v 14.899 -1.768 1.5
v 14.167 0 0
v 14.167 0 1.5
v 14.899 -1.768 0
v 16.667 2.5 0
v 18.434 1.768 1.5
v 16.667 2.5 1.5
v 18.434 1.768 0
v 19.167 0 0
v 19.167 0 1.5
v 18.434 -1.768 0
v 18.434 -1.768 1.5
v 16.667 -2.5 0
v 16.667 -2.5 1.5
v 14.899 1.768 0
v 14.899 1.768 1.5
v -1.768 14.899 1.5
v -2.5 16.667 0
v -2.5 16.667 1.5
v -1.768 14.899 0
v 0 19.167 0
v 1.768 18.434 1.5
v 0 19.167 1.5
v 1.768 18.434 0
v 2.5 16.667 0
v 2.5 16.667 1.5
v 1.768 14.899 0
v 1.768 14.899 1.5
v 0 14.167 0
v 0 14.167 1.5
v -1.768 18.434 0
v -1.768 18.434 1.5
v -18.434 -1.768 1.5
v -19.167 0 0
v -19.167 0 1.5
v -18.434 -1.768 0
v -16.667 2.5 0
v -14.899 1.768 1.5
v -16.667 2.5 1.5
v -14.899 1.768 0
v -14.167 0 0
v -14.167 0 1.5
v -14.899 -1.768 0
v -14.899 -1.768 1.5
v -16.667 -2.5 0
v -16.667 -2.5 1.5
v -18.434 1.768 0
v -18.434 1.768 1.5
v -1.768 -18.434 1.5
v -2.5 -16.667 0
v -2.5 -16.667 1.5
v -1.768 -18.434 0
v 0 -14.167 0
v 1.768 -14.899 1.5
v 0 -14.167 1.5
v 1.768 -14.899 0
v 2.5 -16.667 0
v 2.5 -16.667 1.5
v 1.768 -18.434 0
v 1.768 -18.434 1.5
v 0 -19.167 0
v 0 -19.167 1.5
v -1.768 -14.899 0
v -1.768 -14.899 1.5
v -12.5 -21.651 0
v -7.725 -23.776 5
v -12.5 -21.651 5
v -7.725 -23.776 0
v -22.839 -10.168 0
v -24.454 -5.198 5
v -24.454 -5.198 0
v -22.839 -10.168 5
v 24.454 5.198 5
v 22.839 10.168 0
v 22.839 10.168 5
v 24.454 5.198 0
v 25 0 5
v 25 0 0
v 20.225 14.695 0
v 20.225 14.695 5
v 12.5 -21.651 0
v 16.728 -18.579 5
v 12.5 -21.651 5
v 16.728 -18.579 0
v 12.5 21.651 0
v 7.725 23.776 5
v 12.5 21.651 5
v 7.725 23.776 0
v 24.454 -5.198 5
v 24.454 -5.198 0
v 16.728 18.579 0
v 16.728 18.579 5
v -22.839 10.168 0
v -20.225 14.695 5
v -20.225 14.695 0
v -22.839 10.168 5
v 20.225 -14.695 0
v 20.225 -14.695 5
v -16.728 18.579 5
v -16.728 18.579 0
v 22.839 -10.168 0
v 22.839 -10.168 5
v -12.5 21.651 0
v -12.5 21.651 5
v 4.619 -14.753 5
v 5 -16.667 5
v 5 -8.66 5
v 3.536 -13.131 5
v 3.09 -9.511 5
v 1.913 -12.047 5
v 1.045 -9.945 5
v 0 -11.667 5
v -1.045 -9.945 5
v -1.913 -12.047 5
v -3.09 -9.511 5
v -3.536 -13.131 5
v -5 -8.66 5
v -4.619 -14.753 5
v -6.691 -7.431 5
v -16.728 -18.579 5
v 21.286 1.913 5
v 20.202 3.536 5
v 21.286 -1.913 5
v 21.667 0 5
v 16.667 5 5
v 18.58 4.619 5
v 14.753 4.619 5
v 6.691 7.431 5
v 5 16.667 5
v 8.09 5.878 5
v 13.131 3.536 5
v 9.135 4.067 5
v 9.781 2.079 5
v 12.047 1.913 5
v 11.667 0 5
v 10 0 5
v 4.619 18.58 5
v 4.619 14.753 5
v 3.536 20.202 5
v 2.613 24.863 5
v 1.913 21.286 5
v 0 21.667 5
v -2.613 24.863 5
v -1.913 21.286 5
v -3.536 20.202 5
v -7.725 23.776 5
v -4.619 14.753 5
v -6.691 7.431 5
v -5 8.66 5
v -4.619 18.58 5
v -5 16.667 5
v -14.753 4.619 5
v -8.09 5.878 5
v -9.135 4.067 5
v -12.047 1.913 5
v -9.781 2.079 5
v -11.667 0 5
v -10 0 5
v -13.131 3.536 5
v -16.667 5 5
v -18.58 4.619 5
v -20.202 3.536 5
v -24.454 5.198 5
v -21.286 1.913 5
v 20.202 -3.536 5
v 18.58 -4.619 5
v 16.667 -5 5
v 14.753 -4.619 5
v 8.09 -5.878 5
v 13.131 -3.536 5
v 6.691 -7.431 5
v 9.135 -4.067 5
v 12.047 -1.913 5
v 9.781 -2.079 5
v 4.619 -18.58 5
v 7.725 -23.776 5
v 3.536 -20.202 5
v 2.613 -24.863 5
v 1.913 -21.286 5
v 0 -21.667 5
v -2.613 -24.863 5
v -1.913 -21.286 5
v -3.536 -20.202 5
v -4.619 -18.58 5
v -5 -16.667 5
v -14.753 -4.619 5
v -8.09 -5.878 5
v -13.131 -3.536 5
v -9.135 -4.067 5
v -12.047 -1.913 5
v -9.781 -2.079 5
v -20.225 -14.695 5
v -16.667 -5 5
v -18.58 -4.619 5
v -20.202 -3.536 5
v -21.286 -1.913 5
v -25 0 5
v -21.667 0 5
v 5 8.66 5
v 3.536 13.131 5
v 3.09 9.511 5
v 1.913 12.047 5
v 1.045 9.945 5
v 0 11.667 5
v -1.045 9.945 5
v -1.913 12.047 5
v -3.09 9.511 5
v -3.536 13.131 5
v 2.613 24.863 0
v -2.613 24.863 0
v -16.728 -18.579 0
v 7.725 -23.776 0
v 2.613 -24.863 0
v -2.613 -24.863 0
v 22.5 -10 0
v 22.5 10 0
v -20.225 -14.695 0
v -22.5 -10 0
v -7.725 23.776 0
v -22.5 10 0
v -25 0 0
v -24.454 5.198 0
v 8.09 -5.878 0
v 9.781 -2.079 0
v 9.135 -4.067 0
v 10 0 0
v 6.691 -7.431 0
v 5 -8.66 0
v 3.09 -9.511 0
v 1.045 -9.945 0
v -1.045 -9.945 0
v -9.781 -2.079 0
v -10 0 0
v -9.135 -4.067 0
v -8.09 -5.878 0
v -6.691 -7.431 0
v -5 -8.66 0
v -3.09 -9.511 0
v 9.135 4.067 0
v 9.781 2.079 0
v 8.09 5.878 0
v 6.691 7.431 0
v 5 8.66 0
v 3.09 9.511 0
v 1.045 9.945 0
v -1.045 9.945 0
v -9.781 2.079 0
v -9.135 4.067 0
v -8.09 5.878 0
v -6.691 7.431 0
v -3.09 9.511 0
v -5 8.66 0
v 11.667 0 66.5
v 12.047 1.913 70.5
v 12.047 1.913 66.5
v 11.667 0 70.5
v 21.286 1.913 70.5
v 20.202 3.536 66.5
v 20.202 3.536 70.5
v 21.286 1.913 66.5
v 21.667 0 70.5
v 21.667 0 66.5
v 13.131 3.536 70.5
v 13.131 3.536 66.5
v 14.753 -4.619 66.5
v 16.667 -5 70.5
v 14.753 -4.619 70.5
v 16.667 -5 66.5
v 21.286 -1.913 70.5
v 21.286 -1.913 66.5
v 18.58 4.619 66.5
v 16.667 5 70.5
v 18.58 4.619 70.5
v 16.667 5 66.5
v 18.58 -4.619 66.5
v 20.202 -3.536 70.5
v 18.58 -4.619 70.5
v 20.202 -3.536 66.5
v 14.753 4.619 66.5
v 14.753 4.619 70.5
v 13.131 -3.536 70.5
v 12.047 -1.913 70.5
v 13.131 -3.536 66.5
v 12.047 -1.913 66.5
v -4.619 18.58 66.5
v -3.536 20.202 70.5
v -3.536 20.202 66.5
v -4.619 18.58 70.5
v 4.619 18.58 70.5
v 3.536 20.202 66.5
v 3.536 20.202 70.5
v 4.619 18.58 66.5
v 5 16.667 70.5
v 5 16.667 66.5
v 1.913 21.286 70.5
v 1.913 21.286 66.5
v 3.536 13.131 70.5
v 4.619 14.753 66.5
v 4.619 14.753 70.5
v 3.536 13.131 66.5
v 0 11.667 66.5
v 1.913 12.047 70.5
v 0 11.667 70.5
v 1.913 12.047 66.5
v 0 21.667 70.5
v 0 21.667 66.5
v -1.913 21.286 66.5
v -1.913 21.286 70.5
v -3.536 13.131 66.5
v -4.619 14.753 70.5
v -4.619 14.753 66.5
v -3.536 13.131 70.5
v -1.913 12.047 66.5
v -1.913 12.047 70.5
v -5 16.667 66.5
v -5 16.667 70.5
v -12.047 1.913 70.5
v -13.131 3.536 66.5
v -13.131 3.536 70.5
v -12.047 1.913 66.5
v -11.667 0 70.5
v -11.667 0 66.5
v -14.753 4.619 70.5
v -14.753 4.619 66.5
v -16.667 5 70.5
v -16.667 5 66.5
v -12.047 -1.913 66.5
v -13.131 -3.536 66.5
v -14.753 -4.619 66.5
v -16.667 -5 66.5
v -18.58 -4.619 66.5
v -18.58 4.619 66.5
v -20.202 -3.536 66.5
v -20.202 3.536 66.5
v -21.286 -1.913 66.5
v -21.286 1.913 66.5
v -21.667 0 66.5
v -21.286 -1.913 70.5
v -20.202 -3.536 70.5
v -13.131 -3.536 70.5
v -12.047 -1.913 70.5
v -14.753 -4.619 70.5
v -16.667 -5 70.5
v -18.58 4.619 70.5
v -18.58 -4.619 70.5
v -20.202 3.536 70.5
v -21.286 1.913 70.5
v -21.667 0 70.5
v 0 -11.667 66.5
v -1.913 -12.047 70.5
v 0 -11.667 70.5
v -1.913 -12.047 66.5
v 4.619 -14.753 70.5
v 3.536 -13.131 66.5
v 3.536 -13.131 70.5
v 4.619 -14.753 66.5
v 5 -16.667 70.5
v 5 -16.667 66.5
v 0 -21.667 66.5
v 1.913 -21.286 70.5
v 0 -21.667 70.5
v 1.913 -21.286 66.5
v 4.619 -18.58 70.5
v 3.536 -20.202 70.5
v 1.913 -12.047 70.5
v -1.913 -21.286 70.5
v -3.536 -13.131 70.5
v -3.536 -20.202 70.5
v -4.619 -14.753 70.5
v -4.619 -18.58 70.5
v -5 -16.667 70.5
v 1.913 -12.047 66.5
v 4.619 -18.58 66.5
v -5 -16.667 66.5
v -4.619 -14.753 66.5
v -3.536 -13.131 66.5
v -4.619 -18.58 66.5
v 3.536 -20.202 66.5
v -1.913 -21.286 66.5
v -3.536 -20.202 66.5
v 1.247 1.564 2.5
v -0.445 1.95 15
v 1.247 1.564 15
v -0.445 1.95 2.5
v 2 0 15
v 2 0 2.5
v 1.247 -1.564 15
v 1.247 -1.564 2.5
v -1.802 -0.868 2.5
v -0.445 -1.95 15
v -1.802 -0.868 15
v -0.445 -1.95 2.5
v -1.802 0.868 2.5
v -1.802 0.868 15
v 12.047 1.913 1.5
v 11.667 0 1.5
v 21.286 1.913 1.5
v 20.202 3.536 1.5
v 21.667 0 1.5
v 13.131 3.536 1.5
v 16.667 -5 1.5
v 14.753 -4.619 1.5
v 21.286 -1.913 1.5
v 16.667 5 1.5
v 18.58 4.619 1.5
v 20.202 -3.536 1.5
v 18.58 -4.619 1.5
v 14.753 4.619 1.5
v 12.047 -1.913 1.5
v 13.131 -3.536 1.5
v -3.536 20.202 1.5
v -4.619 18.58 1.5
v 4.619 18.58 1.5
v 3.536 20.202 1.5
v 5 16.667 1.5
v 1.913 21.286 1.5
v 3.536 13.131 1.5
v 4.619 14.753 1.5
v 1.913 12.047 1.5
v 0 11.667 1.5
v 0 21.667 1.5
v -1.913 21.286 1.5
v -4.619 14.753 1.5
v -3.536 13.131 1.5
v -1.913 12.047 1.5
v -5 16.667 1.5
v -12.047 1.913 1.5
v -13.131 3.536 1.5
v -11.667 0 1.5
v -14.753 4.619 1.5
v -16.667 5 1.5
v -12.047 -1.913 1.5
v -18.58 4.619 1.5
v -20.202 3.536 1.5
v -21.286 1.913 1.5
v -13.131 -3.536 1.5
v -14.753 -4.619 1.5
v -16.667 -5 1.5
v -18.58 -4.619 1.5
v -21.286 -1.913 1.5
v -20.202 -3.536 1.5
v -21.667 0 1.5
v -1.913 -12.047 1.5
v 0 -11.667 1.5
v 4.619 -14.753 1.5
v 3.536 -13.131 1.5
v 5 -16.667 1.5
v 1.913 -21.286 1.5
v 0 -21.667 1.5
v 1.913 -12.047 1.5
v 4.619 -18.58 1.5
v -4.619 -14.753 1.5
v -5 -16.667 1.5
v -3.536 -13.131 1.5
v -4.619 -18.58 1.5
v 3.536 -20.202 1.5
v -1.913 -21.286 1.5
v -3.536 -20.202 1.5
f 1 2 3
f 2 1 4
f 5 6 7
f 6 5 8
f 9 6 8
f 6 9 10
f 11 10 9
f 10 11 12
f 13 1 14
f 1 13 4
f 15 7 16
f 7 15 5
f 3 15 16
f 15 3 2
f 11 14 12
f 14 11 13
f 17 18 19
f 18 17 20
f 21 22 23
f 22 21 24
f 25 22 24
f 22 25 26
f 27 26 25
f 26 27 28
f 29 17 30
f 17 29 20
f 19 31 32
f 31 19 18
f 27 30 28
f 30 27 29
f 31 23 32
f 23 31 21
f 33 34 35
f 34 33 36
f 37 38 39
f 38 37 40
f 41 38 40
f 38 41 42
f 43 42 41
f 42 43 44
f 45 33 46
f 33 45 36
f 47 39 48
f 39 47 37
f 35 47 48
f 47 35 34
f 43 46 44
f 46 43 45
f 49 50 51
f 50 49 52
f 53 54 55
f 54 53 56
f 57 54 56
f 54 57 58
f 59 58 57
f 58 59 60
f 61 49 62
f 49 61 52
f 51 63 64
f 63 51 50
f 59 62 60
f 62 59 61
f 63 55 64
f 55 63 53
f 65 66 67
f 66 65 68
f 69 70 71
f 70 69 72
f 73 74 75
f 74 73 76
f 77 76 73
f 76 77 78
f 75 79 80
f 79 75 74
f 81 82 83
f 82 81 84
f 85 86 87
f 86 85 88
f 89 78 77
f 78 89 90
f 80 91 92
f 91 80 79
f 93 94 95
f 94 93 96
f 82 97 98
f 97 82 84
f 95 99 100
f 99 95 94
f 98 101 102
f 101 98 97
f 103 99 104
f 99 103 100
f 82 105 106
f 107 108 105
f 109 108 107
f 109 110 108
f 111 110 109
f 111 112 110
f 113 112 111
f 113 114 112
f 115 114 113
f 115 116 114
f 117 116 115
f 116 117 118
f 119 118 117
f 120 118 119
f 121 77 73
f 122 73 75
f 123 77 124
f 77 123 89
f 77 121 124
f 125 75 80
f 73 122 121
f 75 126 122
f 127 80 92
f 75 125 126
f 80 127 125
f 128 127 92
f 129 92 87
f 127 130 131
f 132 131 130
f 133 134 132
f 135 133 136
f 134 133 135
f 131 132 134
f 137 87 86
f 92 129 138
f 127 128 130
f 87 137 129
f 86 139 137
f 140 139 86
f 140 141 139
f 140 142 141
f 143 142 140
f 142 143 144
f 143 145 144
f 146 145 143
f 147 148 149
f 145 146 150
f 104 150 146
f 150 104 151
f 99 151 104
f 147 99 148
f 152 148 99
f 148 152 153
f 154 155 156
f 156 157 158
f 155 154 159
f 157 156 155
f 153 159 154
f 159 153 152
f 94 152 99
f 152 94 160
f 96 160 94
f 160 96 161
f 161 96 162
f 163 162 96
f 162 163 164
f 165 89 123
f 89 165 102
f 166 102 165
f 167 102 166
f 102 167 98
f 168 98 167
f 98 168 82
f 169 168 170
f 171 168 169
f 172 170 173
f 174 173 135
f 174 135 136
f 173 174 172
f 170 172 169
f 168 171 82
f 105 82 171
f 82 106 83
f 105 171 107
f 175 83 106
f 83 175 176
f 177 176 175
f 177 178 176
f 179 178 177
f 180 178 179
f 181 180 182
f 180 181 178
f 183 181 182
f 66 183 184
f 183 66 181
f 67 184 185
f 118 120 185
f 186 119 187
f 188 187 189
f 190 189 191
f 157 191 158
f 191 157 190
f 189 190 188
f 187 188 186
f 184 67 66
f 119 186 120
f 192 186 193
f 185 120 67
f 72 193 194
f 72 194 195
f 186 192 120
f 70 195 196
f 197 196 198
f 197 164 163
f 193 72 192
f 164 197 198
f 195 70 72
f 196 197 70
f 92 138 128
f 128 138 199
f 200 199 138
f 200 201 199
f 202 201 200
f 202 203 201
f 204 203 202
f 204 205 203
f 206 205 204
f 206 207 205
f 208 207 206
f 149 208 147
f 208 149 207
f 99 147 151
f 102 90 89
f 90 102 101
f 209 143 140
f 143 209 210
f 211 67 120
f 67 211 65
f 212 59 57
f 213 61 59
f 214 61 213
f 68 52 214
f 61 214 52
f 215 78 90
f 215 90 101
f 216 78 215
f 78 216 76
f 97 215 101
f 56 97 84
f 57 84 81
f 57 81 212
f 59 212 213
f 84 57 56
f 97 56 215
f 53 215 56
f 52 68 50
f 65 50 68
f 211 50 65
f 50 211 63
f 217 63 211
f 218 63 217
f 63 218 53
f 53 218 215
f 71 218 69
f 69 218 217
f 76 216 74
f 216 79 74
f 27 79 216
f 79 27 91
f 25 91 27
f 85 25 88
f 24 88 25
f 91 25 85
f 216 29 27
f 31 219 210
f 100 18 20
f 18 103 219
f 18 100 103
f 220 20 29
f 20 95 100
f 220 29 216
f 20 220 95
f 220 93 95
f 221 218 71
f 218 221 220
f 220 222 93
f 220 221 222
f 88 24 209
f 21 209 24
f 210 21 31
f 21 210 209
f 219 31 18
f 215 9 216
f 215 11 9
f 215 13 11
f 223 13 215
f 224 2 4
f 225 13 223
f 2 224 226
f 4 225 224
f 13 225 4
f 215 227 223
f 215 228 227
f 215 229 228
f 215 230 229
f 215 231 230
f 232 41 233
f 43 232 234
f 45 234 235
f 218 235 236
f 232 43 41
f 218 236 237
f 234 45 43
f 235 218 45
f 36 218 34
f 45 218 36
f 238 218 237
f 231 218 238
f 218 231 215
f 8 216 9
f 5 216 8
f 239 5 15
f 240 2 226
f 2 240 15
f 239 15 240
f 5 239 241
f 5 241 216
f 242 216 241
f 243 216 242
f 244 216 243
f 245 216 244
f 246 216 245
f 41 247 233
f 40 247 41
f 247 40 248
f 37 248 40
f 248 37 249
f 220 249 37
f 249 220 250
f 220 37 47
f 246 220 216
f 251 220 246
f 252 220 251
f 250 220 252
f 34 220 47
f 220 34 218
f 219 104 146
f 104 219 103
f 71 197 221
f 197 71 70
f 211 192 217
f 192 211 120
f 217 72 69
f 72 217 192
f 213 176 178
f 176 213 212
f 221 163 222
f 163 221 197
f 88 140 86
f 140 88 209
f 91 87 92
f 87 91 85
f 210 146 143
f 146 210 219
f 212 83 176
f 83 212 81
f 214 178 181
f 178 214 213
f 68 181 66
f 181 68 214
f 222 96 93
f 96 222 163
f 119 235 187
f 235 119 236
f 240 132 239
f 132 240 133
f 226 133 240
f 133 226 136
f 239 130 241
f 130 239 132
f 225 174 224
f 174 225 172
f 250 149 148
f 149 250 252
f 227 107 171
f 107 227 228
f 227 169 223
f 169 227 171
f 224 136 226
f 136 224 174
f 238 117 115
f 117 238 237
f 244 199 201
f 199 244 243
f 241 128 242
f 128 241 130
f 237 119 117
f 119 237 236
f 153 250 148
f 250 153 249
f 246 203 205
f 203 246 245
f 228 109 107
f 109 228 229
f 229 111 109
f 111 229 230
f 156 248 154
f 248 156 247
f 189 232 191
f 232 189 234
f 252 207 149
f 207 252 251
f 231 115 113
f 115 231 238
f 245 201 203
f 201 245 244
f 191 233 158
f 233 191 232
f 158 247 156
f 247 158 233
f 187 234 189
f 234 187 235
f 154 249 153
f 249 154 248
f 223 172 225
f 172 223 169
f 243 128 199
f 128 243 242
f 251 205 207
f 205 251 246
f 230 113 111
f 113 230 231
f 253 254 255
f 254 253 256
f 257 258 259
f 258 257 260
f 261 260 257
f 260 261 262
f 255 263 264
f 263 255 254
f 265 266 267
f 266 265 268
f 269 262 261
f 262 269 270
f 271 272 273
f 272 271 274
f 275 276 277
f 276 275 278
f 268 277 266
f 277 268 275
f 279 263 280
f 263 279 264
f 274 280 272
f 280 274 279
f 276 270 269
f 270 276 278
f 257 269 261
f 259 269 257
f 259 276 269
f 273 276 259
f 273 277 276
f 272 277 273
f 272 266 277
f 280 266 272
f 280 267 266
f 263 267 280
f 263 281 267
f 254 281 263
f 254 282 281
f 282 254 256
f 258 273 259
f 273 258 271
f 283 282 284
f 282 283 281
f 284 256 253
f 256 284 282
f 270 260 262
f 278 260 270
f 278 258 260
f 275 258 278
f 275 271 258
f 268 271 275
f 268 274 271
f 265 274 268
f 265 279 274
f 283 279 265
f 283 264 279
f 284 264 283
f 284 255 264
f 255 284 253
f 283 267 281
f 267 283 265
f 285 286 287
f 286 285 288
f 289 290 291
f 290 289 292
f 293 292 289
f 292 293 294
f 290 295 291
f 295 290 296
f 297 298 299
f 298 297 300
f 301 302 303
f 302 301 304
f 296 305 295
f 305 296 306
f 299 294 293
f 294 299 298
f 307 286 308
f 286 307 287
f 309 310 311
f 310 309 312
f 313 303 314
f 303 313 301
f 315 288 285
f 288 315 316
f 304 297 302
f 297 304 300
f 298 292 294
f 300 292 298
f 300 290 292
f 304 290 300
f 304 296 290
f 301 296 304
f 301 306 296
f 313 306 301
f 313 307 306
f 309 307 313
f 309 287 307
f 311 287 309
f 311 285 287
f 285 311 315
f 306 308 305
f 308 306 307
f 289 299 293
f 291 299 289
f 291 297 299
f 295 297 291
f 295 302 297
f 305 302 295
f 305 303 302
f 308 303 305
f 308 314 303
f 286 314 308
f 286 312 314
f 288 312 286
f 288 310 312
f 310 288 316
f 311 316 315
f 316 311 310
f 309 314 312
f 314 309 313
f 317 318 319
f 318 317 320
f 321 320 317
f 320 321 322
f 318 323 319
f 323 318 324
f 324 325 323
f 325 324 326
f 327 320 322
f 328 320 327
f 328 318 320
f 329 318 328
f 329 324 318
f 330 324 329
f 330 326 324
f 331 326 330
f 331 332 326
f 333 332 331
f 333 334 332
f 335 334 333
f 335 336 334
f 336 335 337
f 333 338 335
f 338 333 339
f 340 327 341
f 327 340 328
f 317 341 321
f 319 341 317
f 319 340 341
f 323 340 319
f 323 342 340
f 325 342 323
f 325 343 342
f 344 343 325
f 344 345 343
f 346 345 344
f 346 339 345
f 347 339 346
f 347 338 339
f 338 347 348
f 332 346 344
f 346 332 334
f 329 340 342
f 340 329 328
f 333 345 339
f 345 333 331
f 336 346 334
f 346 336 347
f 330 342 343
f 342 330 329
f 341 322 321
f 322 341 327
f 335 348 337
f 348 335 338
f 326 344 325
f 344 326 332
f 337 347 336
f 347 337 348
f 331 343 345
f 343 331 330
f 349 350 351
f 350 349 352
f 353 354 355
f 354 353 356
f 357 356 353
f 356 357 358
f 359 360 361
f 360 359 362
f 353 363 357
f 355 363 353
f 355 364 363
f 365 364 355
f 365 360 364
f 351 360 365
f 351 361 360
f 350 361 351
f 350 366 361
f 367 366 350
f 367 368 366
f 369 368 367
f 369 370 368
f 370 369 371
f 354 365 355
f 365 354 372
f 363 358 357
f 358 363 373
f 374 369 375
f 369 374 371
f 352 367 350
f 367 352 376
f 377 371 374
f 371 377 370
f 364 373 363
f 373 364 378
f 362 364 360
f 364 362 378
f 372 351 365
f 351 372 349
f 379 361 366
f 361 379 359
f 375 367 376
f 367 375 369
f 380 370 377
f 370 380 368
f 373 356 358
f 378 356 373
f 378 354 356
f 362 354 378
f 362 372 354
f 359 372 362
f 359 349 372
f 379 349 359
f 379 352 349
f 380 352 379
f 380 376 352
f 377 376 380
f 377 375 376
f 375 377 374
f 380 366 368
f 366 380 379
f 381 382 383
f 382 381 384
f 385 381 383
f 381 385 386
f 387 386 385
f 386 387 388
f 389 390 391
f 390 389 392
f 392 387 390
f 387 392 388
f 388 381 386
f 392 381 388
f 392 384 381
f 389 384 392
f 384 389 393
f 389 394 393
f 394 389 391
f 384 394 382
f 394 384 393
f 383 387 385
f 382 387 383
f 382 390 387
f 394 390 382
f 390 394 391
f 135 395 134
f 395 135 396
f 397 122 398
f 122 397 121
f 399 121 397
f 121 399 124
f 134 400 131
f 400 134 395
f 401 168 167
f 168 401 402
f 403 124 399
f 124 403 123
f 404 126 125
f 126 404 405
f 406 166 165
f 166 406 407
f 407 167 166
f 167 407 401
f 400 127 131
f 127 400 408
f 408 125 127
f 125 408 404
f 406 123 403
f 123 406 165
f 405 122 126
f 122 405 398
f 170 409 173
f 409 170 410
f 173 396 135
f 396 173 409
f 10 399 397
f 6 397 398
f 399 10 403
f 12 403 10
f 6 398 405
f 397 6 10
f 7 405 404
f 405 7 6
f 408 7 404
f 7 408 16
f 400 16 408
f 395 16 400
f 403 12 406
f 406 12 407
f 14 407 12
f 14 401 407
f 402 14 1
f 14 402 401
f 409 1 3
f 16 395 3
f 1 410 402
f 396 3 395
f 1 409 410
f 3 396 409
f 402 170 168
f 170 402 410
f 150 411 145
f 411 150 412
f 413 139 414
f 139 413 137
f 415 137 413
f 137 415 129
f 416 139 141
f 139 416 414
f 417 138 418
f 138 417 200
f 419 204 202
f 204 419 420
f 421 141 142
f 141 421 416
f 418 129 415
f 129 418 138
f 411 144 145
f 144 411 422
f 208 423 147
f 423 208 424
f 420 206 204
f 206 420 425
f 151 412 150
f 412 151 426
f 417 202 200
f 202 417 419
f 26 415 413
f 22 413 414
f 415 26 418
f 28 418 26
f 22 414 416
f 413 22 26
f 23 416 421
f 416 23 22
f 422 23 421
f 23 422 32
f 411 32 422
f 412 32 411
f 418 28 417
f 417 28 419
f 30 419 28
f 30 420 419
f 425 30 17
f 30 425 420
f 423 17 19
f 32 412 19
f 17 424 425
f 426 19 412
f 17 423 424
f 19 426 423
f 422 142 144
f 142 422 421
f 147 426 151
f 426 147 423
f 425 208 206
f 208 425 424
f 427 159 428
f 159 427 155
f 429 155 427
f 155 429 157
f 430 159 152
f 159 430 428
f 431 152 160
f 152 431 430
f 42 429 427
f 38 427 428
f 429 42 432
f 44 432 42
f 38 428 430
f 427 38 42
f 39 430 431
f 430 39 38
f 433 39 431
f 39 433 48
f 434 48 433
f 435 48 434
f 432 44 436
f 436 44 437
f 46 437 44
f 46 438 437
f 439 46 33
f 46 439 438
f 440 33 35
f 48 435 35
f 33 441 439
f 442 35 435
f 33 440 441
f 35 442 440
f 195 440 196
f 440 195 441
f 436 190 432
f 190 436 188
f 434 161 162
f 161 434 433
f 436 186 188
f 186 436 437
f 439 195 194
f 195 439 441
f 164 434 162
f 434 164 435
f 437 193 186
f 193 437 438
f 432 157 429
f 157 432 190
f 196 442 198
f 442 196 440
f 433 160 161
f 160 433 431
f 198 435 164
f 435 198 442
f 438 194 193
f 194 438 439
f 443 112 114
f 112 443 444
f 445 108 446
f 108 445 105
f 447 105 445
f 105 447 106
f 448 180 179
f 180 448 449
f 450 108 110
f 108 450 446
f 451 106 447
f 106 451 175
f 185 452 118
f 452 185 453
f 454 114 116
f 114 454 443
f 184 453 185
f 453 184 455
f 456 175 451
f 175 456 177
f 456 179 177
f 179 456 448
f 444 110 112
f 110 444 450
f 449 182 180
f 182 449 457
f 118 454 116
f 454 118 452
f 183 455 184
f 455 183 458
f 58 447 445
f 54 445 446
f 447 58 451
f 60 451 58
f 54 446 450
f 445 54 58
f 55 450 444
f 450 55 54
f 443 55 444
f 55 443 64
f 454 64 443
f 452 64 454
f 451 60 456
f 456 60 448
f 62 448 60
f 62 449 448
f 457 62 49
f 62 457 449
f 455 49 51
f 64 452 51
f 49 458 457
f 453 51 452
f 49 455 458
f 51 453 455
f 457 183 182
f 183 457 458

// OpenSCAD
// Parameters
circular_flange_diameter = 50; // Example value
circular_flange_height = 5;
central_hole_diameter = 20;
bolt_hole_diameter = 5;
spacer_block_width = 45;
spacer_block_height = 20;
spacer_block_depth = 20;
bolt_length = 70;
bolt_diameter = 4;
nut_diameter = bolt_diameter + 6;
nut_thickness = 4;

module circular_flange() {
    difference() {
        cylinder(h = circular_flange_height, d = circular_flange_diameter);
        // Central hole
        translate([0, 0, -1]) cylinder(h = circular_flange_height + 2, d = central_hole_diameter);
        // Bolt holes
        for (angle = [0 : 90 : 270]) {
            translate([circular_flange_diameter/3*cos(angle), circular_flange_diameter/3*sin(angle), -1])
                cylinder(h = circular_flange_height + 2, d = bolt_hole_diameter);
        }
    }
}

module spacer_block() {
    cube([spacer_block_width, spacer_block_depth, spacer_block_height], center = true);
}

module bolt() {
    cylinder(h = bolt_length, d = bolt_diameter);
}

module nut() {
    translate([0, 0, bolt_length - nut_thickness])
        cylinder(h = nut_thickness, d = nut_diameter, center = true);
}

// Assembly layers
module layer1() {
    circular_flange();
    for (angle = [0 : 90 : 270]) {
        translate([circular_flange_diameter/3*cos(angle), circular_flange_diameter/3*sin(angle), circular_flange_height/2])
            nut();
    }
    translate([0, 0, circular_flange_height/2]) bolt();
}

module layer2() {
    translate([0, 0, -spacer_block_height/2])
        spacer_block();
    translate([0, 0, circular_flange_height + spacer_block_height/2])
        bolt();
}

module layer3() {
    translate([0, 0, -spacer_block_height * 1.5])
        spacer_block();
    translate([0, 0, circular_flange_height + spacer_block_height * 1.5])
        bolt();
}

module layer4() {
    translate([0, 0, -spacer_block_height * 2.5])
        spacer_block();
    translate([0, 0, circular_flange_height + spacer_block_height * 2.5])
        bolt();
}

module layer5() {
    translate([0, 0, -circular_flange_height - spacer_block_height * 3])
        circular_flange();
    for (angle = [0 : 90 : 270]) {
        translate([circular_flange_diameter/3*cos(angle), circular_flange_diameter/3*sin(angle), -circular_flange_height - spacer_block_height*3 + circular_flange_height/2])
            nut();
    }
}

difference() {
    layer1();
    layer2();
    layer3();
    layer4();
    layer5();
}
